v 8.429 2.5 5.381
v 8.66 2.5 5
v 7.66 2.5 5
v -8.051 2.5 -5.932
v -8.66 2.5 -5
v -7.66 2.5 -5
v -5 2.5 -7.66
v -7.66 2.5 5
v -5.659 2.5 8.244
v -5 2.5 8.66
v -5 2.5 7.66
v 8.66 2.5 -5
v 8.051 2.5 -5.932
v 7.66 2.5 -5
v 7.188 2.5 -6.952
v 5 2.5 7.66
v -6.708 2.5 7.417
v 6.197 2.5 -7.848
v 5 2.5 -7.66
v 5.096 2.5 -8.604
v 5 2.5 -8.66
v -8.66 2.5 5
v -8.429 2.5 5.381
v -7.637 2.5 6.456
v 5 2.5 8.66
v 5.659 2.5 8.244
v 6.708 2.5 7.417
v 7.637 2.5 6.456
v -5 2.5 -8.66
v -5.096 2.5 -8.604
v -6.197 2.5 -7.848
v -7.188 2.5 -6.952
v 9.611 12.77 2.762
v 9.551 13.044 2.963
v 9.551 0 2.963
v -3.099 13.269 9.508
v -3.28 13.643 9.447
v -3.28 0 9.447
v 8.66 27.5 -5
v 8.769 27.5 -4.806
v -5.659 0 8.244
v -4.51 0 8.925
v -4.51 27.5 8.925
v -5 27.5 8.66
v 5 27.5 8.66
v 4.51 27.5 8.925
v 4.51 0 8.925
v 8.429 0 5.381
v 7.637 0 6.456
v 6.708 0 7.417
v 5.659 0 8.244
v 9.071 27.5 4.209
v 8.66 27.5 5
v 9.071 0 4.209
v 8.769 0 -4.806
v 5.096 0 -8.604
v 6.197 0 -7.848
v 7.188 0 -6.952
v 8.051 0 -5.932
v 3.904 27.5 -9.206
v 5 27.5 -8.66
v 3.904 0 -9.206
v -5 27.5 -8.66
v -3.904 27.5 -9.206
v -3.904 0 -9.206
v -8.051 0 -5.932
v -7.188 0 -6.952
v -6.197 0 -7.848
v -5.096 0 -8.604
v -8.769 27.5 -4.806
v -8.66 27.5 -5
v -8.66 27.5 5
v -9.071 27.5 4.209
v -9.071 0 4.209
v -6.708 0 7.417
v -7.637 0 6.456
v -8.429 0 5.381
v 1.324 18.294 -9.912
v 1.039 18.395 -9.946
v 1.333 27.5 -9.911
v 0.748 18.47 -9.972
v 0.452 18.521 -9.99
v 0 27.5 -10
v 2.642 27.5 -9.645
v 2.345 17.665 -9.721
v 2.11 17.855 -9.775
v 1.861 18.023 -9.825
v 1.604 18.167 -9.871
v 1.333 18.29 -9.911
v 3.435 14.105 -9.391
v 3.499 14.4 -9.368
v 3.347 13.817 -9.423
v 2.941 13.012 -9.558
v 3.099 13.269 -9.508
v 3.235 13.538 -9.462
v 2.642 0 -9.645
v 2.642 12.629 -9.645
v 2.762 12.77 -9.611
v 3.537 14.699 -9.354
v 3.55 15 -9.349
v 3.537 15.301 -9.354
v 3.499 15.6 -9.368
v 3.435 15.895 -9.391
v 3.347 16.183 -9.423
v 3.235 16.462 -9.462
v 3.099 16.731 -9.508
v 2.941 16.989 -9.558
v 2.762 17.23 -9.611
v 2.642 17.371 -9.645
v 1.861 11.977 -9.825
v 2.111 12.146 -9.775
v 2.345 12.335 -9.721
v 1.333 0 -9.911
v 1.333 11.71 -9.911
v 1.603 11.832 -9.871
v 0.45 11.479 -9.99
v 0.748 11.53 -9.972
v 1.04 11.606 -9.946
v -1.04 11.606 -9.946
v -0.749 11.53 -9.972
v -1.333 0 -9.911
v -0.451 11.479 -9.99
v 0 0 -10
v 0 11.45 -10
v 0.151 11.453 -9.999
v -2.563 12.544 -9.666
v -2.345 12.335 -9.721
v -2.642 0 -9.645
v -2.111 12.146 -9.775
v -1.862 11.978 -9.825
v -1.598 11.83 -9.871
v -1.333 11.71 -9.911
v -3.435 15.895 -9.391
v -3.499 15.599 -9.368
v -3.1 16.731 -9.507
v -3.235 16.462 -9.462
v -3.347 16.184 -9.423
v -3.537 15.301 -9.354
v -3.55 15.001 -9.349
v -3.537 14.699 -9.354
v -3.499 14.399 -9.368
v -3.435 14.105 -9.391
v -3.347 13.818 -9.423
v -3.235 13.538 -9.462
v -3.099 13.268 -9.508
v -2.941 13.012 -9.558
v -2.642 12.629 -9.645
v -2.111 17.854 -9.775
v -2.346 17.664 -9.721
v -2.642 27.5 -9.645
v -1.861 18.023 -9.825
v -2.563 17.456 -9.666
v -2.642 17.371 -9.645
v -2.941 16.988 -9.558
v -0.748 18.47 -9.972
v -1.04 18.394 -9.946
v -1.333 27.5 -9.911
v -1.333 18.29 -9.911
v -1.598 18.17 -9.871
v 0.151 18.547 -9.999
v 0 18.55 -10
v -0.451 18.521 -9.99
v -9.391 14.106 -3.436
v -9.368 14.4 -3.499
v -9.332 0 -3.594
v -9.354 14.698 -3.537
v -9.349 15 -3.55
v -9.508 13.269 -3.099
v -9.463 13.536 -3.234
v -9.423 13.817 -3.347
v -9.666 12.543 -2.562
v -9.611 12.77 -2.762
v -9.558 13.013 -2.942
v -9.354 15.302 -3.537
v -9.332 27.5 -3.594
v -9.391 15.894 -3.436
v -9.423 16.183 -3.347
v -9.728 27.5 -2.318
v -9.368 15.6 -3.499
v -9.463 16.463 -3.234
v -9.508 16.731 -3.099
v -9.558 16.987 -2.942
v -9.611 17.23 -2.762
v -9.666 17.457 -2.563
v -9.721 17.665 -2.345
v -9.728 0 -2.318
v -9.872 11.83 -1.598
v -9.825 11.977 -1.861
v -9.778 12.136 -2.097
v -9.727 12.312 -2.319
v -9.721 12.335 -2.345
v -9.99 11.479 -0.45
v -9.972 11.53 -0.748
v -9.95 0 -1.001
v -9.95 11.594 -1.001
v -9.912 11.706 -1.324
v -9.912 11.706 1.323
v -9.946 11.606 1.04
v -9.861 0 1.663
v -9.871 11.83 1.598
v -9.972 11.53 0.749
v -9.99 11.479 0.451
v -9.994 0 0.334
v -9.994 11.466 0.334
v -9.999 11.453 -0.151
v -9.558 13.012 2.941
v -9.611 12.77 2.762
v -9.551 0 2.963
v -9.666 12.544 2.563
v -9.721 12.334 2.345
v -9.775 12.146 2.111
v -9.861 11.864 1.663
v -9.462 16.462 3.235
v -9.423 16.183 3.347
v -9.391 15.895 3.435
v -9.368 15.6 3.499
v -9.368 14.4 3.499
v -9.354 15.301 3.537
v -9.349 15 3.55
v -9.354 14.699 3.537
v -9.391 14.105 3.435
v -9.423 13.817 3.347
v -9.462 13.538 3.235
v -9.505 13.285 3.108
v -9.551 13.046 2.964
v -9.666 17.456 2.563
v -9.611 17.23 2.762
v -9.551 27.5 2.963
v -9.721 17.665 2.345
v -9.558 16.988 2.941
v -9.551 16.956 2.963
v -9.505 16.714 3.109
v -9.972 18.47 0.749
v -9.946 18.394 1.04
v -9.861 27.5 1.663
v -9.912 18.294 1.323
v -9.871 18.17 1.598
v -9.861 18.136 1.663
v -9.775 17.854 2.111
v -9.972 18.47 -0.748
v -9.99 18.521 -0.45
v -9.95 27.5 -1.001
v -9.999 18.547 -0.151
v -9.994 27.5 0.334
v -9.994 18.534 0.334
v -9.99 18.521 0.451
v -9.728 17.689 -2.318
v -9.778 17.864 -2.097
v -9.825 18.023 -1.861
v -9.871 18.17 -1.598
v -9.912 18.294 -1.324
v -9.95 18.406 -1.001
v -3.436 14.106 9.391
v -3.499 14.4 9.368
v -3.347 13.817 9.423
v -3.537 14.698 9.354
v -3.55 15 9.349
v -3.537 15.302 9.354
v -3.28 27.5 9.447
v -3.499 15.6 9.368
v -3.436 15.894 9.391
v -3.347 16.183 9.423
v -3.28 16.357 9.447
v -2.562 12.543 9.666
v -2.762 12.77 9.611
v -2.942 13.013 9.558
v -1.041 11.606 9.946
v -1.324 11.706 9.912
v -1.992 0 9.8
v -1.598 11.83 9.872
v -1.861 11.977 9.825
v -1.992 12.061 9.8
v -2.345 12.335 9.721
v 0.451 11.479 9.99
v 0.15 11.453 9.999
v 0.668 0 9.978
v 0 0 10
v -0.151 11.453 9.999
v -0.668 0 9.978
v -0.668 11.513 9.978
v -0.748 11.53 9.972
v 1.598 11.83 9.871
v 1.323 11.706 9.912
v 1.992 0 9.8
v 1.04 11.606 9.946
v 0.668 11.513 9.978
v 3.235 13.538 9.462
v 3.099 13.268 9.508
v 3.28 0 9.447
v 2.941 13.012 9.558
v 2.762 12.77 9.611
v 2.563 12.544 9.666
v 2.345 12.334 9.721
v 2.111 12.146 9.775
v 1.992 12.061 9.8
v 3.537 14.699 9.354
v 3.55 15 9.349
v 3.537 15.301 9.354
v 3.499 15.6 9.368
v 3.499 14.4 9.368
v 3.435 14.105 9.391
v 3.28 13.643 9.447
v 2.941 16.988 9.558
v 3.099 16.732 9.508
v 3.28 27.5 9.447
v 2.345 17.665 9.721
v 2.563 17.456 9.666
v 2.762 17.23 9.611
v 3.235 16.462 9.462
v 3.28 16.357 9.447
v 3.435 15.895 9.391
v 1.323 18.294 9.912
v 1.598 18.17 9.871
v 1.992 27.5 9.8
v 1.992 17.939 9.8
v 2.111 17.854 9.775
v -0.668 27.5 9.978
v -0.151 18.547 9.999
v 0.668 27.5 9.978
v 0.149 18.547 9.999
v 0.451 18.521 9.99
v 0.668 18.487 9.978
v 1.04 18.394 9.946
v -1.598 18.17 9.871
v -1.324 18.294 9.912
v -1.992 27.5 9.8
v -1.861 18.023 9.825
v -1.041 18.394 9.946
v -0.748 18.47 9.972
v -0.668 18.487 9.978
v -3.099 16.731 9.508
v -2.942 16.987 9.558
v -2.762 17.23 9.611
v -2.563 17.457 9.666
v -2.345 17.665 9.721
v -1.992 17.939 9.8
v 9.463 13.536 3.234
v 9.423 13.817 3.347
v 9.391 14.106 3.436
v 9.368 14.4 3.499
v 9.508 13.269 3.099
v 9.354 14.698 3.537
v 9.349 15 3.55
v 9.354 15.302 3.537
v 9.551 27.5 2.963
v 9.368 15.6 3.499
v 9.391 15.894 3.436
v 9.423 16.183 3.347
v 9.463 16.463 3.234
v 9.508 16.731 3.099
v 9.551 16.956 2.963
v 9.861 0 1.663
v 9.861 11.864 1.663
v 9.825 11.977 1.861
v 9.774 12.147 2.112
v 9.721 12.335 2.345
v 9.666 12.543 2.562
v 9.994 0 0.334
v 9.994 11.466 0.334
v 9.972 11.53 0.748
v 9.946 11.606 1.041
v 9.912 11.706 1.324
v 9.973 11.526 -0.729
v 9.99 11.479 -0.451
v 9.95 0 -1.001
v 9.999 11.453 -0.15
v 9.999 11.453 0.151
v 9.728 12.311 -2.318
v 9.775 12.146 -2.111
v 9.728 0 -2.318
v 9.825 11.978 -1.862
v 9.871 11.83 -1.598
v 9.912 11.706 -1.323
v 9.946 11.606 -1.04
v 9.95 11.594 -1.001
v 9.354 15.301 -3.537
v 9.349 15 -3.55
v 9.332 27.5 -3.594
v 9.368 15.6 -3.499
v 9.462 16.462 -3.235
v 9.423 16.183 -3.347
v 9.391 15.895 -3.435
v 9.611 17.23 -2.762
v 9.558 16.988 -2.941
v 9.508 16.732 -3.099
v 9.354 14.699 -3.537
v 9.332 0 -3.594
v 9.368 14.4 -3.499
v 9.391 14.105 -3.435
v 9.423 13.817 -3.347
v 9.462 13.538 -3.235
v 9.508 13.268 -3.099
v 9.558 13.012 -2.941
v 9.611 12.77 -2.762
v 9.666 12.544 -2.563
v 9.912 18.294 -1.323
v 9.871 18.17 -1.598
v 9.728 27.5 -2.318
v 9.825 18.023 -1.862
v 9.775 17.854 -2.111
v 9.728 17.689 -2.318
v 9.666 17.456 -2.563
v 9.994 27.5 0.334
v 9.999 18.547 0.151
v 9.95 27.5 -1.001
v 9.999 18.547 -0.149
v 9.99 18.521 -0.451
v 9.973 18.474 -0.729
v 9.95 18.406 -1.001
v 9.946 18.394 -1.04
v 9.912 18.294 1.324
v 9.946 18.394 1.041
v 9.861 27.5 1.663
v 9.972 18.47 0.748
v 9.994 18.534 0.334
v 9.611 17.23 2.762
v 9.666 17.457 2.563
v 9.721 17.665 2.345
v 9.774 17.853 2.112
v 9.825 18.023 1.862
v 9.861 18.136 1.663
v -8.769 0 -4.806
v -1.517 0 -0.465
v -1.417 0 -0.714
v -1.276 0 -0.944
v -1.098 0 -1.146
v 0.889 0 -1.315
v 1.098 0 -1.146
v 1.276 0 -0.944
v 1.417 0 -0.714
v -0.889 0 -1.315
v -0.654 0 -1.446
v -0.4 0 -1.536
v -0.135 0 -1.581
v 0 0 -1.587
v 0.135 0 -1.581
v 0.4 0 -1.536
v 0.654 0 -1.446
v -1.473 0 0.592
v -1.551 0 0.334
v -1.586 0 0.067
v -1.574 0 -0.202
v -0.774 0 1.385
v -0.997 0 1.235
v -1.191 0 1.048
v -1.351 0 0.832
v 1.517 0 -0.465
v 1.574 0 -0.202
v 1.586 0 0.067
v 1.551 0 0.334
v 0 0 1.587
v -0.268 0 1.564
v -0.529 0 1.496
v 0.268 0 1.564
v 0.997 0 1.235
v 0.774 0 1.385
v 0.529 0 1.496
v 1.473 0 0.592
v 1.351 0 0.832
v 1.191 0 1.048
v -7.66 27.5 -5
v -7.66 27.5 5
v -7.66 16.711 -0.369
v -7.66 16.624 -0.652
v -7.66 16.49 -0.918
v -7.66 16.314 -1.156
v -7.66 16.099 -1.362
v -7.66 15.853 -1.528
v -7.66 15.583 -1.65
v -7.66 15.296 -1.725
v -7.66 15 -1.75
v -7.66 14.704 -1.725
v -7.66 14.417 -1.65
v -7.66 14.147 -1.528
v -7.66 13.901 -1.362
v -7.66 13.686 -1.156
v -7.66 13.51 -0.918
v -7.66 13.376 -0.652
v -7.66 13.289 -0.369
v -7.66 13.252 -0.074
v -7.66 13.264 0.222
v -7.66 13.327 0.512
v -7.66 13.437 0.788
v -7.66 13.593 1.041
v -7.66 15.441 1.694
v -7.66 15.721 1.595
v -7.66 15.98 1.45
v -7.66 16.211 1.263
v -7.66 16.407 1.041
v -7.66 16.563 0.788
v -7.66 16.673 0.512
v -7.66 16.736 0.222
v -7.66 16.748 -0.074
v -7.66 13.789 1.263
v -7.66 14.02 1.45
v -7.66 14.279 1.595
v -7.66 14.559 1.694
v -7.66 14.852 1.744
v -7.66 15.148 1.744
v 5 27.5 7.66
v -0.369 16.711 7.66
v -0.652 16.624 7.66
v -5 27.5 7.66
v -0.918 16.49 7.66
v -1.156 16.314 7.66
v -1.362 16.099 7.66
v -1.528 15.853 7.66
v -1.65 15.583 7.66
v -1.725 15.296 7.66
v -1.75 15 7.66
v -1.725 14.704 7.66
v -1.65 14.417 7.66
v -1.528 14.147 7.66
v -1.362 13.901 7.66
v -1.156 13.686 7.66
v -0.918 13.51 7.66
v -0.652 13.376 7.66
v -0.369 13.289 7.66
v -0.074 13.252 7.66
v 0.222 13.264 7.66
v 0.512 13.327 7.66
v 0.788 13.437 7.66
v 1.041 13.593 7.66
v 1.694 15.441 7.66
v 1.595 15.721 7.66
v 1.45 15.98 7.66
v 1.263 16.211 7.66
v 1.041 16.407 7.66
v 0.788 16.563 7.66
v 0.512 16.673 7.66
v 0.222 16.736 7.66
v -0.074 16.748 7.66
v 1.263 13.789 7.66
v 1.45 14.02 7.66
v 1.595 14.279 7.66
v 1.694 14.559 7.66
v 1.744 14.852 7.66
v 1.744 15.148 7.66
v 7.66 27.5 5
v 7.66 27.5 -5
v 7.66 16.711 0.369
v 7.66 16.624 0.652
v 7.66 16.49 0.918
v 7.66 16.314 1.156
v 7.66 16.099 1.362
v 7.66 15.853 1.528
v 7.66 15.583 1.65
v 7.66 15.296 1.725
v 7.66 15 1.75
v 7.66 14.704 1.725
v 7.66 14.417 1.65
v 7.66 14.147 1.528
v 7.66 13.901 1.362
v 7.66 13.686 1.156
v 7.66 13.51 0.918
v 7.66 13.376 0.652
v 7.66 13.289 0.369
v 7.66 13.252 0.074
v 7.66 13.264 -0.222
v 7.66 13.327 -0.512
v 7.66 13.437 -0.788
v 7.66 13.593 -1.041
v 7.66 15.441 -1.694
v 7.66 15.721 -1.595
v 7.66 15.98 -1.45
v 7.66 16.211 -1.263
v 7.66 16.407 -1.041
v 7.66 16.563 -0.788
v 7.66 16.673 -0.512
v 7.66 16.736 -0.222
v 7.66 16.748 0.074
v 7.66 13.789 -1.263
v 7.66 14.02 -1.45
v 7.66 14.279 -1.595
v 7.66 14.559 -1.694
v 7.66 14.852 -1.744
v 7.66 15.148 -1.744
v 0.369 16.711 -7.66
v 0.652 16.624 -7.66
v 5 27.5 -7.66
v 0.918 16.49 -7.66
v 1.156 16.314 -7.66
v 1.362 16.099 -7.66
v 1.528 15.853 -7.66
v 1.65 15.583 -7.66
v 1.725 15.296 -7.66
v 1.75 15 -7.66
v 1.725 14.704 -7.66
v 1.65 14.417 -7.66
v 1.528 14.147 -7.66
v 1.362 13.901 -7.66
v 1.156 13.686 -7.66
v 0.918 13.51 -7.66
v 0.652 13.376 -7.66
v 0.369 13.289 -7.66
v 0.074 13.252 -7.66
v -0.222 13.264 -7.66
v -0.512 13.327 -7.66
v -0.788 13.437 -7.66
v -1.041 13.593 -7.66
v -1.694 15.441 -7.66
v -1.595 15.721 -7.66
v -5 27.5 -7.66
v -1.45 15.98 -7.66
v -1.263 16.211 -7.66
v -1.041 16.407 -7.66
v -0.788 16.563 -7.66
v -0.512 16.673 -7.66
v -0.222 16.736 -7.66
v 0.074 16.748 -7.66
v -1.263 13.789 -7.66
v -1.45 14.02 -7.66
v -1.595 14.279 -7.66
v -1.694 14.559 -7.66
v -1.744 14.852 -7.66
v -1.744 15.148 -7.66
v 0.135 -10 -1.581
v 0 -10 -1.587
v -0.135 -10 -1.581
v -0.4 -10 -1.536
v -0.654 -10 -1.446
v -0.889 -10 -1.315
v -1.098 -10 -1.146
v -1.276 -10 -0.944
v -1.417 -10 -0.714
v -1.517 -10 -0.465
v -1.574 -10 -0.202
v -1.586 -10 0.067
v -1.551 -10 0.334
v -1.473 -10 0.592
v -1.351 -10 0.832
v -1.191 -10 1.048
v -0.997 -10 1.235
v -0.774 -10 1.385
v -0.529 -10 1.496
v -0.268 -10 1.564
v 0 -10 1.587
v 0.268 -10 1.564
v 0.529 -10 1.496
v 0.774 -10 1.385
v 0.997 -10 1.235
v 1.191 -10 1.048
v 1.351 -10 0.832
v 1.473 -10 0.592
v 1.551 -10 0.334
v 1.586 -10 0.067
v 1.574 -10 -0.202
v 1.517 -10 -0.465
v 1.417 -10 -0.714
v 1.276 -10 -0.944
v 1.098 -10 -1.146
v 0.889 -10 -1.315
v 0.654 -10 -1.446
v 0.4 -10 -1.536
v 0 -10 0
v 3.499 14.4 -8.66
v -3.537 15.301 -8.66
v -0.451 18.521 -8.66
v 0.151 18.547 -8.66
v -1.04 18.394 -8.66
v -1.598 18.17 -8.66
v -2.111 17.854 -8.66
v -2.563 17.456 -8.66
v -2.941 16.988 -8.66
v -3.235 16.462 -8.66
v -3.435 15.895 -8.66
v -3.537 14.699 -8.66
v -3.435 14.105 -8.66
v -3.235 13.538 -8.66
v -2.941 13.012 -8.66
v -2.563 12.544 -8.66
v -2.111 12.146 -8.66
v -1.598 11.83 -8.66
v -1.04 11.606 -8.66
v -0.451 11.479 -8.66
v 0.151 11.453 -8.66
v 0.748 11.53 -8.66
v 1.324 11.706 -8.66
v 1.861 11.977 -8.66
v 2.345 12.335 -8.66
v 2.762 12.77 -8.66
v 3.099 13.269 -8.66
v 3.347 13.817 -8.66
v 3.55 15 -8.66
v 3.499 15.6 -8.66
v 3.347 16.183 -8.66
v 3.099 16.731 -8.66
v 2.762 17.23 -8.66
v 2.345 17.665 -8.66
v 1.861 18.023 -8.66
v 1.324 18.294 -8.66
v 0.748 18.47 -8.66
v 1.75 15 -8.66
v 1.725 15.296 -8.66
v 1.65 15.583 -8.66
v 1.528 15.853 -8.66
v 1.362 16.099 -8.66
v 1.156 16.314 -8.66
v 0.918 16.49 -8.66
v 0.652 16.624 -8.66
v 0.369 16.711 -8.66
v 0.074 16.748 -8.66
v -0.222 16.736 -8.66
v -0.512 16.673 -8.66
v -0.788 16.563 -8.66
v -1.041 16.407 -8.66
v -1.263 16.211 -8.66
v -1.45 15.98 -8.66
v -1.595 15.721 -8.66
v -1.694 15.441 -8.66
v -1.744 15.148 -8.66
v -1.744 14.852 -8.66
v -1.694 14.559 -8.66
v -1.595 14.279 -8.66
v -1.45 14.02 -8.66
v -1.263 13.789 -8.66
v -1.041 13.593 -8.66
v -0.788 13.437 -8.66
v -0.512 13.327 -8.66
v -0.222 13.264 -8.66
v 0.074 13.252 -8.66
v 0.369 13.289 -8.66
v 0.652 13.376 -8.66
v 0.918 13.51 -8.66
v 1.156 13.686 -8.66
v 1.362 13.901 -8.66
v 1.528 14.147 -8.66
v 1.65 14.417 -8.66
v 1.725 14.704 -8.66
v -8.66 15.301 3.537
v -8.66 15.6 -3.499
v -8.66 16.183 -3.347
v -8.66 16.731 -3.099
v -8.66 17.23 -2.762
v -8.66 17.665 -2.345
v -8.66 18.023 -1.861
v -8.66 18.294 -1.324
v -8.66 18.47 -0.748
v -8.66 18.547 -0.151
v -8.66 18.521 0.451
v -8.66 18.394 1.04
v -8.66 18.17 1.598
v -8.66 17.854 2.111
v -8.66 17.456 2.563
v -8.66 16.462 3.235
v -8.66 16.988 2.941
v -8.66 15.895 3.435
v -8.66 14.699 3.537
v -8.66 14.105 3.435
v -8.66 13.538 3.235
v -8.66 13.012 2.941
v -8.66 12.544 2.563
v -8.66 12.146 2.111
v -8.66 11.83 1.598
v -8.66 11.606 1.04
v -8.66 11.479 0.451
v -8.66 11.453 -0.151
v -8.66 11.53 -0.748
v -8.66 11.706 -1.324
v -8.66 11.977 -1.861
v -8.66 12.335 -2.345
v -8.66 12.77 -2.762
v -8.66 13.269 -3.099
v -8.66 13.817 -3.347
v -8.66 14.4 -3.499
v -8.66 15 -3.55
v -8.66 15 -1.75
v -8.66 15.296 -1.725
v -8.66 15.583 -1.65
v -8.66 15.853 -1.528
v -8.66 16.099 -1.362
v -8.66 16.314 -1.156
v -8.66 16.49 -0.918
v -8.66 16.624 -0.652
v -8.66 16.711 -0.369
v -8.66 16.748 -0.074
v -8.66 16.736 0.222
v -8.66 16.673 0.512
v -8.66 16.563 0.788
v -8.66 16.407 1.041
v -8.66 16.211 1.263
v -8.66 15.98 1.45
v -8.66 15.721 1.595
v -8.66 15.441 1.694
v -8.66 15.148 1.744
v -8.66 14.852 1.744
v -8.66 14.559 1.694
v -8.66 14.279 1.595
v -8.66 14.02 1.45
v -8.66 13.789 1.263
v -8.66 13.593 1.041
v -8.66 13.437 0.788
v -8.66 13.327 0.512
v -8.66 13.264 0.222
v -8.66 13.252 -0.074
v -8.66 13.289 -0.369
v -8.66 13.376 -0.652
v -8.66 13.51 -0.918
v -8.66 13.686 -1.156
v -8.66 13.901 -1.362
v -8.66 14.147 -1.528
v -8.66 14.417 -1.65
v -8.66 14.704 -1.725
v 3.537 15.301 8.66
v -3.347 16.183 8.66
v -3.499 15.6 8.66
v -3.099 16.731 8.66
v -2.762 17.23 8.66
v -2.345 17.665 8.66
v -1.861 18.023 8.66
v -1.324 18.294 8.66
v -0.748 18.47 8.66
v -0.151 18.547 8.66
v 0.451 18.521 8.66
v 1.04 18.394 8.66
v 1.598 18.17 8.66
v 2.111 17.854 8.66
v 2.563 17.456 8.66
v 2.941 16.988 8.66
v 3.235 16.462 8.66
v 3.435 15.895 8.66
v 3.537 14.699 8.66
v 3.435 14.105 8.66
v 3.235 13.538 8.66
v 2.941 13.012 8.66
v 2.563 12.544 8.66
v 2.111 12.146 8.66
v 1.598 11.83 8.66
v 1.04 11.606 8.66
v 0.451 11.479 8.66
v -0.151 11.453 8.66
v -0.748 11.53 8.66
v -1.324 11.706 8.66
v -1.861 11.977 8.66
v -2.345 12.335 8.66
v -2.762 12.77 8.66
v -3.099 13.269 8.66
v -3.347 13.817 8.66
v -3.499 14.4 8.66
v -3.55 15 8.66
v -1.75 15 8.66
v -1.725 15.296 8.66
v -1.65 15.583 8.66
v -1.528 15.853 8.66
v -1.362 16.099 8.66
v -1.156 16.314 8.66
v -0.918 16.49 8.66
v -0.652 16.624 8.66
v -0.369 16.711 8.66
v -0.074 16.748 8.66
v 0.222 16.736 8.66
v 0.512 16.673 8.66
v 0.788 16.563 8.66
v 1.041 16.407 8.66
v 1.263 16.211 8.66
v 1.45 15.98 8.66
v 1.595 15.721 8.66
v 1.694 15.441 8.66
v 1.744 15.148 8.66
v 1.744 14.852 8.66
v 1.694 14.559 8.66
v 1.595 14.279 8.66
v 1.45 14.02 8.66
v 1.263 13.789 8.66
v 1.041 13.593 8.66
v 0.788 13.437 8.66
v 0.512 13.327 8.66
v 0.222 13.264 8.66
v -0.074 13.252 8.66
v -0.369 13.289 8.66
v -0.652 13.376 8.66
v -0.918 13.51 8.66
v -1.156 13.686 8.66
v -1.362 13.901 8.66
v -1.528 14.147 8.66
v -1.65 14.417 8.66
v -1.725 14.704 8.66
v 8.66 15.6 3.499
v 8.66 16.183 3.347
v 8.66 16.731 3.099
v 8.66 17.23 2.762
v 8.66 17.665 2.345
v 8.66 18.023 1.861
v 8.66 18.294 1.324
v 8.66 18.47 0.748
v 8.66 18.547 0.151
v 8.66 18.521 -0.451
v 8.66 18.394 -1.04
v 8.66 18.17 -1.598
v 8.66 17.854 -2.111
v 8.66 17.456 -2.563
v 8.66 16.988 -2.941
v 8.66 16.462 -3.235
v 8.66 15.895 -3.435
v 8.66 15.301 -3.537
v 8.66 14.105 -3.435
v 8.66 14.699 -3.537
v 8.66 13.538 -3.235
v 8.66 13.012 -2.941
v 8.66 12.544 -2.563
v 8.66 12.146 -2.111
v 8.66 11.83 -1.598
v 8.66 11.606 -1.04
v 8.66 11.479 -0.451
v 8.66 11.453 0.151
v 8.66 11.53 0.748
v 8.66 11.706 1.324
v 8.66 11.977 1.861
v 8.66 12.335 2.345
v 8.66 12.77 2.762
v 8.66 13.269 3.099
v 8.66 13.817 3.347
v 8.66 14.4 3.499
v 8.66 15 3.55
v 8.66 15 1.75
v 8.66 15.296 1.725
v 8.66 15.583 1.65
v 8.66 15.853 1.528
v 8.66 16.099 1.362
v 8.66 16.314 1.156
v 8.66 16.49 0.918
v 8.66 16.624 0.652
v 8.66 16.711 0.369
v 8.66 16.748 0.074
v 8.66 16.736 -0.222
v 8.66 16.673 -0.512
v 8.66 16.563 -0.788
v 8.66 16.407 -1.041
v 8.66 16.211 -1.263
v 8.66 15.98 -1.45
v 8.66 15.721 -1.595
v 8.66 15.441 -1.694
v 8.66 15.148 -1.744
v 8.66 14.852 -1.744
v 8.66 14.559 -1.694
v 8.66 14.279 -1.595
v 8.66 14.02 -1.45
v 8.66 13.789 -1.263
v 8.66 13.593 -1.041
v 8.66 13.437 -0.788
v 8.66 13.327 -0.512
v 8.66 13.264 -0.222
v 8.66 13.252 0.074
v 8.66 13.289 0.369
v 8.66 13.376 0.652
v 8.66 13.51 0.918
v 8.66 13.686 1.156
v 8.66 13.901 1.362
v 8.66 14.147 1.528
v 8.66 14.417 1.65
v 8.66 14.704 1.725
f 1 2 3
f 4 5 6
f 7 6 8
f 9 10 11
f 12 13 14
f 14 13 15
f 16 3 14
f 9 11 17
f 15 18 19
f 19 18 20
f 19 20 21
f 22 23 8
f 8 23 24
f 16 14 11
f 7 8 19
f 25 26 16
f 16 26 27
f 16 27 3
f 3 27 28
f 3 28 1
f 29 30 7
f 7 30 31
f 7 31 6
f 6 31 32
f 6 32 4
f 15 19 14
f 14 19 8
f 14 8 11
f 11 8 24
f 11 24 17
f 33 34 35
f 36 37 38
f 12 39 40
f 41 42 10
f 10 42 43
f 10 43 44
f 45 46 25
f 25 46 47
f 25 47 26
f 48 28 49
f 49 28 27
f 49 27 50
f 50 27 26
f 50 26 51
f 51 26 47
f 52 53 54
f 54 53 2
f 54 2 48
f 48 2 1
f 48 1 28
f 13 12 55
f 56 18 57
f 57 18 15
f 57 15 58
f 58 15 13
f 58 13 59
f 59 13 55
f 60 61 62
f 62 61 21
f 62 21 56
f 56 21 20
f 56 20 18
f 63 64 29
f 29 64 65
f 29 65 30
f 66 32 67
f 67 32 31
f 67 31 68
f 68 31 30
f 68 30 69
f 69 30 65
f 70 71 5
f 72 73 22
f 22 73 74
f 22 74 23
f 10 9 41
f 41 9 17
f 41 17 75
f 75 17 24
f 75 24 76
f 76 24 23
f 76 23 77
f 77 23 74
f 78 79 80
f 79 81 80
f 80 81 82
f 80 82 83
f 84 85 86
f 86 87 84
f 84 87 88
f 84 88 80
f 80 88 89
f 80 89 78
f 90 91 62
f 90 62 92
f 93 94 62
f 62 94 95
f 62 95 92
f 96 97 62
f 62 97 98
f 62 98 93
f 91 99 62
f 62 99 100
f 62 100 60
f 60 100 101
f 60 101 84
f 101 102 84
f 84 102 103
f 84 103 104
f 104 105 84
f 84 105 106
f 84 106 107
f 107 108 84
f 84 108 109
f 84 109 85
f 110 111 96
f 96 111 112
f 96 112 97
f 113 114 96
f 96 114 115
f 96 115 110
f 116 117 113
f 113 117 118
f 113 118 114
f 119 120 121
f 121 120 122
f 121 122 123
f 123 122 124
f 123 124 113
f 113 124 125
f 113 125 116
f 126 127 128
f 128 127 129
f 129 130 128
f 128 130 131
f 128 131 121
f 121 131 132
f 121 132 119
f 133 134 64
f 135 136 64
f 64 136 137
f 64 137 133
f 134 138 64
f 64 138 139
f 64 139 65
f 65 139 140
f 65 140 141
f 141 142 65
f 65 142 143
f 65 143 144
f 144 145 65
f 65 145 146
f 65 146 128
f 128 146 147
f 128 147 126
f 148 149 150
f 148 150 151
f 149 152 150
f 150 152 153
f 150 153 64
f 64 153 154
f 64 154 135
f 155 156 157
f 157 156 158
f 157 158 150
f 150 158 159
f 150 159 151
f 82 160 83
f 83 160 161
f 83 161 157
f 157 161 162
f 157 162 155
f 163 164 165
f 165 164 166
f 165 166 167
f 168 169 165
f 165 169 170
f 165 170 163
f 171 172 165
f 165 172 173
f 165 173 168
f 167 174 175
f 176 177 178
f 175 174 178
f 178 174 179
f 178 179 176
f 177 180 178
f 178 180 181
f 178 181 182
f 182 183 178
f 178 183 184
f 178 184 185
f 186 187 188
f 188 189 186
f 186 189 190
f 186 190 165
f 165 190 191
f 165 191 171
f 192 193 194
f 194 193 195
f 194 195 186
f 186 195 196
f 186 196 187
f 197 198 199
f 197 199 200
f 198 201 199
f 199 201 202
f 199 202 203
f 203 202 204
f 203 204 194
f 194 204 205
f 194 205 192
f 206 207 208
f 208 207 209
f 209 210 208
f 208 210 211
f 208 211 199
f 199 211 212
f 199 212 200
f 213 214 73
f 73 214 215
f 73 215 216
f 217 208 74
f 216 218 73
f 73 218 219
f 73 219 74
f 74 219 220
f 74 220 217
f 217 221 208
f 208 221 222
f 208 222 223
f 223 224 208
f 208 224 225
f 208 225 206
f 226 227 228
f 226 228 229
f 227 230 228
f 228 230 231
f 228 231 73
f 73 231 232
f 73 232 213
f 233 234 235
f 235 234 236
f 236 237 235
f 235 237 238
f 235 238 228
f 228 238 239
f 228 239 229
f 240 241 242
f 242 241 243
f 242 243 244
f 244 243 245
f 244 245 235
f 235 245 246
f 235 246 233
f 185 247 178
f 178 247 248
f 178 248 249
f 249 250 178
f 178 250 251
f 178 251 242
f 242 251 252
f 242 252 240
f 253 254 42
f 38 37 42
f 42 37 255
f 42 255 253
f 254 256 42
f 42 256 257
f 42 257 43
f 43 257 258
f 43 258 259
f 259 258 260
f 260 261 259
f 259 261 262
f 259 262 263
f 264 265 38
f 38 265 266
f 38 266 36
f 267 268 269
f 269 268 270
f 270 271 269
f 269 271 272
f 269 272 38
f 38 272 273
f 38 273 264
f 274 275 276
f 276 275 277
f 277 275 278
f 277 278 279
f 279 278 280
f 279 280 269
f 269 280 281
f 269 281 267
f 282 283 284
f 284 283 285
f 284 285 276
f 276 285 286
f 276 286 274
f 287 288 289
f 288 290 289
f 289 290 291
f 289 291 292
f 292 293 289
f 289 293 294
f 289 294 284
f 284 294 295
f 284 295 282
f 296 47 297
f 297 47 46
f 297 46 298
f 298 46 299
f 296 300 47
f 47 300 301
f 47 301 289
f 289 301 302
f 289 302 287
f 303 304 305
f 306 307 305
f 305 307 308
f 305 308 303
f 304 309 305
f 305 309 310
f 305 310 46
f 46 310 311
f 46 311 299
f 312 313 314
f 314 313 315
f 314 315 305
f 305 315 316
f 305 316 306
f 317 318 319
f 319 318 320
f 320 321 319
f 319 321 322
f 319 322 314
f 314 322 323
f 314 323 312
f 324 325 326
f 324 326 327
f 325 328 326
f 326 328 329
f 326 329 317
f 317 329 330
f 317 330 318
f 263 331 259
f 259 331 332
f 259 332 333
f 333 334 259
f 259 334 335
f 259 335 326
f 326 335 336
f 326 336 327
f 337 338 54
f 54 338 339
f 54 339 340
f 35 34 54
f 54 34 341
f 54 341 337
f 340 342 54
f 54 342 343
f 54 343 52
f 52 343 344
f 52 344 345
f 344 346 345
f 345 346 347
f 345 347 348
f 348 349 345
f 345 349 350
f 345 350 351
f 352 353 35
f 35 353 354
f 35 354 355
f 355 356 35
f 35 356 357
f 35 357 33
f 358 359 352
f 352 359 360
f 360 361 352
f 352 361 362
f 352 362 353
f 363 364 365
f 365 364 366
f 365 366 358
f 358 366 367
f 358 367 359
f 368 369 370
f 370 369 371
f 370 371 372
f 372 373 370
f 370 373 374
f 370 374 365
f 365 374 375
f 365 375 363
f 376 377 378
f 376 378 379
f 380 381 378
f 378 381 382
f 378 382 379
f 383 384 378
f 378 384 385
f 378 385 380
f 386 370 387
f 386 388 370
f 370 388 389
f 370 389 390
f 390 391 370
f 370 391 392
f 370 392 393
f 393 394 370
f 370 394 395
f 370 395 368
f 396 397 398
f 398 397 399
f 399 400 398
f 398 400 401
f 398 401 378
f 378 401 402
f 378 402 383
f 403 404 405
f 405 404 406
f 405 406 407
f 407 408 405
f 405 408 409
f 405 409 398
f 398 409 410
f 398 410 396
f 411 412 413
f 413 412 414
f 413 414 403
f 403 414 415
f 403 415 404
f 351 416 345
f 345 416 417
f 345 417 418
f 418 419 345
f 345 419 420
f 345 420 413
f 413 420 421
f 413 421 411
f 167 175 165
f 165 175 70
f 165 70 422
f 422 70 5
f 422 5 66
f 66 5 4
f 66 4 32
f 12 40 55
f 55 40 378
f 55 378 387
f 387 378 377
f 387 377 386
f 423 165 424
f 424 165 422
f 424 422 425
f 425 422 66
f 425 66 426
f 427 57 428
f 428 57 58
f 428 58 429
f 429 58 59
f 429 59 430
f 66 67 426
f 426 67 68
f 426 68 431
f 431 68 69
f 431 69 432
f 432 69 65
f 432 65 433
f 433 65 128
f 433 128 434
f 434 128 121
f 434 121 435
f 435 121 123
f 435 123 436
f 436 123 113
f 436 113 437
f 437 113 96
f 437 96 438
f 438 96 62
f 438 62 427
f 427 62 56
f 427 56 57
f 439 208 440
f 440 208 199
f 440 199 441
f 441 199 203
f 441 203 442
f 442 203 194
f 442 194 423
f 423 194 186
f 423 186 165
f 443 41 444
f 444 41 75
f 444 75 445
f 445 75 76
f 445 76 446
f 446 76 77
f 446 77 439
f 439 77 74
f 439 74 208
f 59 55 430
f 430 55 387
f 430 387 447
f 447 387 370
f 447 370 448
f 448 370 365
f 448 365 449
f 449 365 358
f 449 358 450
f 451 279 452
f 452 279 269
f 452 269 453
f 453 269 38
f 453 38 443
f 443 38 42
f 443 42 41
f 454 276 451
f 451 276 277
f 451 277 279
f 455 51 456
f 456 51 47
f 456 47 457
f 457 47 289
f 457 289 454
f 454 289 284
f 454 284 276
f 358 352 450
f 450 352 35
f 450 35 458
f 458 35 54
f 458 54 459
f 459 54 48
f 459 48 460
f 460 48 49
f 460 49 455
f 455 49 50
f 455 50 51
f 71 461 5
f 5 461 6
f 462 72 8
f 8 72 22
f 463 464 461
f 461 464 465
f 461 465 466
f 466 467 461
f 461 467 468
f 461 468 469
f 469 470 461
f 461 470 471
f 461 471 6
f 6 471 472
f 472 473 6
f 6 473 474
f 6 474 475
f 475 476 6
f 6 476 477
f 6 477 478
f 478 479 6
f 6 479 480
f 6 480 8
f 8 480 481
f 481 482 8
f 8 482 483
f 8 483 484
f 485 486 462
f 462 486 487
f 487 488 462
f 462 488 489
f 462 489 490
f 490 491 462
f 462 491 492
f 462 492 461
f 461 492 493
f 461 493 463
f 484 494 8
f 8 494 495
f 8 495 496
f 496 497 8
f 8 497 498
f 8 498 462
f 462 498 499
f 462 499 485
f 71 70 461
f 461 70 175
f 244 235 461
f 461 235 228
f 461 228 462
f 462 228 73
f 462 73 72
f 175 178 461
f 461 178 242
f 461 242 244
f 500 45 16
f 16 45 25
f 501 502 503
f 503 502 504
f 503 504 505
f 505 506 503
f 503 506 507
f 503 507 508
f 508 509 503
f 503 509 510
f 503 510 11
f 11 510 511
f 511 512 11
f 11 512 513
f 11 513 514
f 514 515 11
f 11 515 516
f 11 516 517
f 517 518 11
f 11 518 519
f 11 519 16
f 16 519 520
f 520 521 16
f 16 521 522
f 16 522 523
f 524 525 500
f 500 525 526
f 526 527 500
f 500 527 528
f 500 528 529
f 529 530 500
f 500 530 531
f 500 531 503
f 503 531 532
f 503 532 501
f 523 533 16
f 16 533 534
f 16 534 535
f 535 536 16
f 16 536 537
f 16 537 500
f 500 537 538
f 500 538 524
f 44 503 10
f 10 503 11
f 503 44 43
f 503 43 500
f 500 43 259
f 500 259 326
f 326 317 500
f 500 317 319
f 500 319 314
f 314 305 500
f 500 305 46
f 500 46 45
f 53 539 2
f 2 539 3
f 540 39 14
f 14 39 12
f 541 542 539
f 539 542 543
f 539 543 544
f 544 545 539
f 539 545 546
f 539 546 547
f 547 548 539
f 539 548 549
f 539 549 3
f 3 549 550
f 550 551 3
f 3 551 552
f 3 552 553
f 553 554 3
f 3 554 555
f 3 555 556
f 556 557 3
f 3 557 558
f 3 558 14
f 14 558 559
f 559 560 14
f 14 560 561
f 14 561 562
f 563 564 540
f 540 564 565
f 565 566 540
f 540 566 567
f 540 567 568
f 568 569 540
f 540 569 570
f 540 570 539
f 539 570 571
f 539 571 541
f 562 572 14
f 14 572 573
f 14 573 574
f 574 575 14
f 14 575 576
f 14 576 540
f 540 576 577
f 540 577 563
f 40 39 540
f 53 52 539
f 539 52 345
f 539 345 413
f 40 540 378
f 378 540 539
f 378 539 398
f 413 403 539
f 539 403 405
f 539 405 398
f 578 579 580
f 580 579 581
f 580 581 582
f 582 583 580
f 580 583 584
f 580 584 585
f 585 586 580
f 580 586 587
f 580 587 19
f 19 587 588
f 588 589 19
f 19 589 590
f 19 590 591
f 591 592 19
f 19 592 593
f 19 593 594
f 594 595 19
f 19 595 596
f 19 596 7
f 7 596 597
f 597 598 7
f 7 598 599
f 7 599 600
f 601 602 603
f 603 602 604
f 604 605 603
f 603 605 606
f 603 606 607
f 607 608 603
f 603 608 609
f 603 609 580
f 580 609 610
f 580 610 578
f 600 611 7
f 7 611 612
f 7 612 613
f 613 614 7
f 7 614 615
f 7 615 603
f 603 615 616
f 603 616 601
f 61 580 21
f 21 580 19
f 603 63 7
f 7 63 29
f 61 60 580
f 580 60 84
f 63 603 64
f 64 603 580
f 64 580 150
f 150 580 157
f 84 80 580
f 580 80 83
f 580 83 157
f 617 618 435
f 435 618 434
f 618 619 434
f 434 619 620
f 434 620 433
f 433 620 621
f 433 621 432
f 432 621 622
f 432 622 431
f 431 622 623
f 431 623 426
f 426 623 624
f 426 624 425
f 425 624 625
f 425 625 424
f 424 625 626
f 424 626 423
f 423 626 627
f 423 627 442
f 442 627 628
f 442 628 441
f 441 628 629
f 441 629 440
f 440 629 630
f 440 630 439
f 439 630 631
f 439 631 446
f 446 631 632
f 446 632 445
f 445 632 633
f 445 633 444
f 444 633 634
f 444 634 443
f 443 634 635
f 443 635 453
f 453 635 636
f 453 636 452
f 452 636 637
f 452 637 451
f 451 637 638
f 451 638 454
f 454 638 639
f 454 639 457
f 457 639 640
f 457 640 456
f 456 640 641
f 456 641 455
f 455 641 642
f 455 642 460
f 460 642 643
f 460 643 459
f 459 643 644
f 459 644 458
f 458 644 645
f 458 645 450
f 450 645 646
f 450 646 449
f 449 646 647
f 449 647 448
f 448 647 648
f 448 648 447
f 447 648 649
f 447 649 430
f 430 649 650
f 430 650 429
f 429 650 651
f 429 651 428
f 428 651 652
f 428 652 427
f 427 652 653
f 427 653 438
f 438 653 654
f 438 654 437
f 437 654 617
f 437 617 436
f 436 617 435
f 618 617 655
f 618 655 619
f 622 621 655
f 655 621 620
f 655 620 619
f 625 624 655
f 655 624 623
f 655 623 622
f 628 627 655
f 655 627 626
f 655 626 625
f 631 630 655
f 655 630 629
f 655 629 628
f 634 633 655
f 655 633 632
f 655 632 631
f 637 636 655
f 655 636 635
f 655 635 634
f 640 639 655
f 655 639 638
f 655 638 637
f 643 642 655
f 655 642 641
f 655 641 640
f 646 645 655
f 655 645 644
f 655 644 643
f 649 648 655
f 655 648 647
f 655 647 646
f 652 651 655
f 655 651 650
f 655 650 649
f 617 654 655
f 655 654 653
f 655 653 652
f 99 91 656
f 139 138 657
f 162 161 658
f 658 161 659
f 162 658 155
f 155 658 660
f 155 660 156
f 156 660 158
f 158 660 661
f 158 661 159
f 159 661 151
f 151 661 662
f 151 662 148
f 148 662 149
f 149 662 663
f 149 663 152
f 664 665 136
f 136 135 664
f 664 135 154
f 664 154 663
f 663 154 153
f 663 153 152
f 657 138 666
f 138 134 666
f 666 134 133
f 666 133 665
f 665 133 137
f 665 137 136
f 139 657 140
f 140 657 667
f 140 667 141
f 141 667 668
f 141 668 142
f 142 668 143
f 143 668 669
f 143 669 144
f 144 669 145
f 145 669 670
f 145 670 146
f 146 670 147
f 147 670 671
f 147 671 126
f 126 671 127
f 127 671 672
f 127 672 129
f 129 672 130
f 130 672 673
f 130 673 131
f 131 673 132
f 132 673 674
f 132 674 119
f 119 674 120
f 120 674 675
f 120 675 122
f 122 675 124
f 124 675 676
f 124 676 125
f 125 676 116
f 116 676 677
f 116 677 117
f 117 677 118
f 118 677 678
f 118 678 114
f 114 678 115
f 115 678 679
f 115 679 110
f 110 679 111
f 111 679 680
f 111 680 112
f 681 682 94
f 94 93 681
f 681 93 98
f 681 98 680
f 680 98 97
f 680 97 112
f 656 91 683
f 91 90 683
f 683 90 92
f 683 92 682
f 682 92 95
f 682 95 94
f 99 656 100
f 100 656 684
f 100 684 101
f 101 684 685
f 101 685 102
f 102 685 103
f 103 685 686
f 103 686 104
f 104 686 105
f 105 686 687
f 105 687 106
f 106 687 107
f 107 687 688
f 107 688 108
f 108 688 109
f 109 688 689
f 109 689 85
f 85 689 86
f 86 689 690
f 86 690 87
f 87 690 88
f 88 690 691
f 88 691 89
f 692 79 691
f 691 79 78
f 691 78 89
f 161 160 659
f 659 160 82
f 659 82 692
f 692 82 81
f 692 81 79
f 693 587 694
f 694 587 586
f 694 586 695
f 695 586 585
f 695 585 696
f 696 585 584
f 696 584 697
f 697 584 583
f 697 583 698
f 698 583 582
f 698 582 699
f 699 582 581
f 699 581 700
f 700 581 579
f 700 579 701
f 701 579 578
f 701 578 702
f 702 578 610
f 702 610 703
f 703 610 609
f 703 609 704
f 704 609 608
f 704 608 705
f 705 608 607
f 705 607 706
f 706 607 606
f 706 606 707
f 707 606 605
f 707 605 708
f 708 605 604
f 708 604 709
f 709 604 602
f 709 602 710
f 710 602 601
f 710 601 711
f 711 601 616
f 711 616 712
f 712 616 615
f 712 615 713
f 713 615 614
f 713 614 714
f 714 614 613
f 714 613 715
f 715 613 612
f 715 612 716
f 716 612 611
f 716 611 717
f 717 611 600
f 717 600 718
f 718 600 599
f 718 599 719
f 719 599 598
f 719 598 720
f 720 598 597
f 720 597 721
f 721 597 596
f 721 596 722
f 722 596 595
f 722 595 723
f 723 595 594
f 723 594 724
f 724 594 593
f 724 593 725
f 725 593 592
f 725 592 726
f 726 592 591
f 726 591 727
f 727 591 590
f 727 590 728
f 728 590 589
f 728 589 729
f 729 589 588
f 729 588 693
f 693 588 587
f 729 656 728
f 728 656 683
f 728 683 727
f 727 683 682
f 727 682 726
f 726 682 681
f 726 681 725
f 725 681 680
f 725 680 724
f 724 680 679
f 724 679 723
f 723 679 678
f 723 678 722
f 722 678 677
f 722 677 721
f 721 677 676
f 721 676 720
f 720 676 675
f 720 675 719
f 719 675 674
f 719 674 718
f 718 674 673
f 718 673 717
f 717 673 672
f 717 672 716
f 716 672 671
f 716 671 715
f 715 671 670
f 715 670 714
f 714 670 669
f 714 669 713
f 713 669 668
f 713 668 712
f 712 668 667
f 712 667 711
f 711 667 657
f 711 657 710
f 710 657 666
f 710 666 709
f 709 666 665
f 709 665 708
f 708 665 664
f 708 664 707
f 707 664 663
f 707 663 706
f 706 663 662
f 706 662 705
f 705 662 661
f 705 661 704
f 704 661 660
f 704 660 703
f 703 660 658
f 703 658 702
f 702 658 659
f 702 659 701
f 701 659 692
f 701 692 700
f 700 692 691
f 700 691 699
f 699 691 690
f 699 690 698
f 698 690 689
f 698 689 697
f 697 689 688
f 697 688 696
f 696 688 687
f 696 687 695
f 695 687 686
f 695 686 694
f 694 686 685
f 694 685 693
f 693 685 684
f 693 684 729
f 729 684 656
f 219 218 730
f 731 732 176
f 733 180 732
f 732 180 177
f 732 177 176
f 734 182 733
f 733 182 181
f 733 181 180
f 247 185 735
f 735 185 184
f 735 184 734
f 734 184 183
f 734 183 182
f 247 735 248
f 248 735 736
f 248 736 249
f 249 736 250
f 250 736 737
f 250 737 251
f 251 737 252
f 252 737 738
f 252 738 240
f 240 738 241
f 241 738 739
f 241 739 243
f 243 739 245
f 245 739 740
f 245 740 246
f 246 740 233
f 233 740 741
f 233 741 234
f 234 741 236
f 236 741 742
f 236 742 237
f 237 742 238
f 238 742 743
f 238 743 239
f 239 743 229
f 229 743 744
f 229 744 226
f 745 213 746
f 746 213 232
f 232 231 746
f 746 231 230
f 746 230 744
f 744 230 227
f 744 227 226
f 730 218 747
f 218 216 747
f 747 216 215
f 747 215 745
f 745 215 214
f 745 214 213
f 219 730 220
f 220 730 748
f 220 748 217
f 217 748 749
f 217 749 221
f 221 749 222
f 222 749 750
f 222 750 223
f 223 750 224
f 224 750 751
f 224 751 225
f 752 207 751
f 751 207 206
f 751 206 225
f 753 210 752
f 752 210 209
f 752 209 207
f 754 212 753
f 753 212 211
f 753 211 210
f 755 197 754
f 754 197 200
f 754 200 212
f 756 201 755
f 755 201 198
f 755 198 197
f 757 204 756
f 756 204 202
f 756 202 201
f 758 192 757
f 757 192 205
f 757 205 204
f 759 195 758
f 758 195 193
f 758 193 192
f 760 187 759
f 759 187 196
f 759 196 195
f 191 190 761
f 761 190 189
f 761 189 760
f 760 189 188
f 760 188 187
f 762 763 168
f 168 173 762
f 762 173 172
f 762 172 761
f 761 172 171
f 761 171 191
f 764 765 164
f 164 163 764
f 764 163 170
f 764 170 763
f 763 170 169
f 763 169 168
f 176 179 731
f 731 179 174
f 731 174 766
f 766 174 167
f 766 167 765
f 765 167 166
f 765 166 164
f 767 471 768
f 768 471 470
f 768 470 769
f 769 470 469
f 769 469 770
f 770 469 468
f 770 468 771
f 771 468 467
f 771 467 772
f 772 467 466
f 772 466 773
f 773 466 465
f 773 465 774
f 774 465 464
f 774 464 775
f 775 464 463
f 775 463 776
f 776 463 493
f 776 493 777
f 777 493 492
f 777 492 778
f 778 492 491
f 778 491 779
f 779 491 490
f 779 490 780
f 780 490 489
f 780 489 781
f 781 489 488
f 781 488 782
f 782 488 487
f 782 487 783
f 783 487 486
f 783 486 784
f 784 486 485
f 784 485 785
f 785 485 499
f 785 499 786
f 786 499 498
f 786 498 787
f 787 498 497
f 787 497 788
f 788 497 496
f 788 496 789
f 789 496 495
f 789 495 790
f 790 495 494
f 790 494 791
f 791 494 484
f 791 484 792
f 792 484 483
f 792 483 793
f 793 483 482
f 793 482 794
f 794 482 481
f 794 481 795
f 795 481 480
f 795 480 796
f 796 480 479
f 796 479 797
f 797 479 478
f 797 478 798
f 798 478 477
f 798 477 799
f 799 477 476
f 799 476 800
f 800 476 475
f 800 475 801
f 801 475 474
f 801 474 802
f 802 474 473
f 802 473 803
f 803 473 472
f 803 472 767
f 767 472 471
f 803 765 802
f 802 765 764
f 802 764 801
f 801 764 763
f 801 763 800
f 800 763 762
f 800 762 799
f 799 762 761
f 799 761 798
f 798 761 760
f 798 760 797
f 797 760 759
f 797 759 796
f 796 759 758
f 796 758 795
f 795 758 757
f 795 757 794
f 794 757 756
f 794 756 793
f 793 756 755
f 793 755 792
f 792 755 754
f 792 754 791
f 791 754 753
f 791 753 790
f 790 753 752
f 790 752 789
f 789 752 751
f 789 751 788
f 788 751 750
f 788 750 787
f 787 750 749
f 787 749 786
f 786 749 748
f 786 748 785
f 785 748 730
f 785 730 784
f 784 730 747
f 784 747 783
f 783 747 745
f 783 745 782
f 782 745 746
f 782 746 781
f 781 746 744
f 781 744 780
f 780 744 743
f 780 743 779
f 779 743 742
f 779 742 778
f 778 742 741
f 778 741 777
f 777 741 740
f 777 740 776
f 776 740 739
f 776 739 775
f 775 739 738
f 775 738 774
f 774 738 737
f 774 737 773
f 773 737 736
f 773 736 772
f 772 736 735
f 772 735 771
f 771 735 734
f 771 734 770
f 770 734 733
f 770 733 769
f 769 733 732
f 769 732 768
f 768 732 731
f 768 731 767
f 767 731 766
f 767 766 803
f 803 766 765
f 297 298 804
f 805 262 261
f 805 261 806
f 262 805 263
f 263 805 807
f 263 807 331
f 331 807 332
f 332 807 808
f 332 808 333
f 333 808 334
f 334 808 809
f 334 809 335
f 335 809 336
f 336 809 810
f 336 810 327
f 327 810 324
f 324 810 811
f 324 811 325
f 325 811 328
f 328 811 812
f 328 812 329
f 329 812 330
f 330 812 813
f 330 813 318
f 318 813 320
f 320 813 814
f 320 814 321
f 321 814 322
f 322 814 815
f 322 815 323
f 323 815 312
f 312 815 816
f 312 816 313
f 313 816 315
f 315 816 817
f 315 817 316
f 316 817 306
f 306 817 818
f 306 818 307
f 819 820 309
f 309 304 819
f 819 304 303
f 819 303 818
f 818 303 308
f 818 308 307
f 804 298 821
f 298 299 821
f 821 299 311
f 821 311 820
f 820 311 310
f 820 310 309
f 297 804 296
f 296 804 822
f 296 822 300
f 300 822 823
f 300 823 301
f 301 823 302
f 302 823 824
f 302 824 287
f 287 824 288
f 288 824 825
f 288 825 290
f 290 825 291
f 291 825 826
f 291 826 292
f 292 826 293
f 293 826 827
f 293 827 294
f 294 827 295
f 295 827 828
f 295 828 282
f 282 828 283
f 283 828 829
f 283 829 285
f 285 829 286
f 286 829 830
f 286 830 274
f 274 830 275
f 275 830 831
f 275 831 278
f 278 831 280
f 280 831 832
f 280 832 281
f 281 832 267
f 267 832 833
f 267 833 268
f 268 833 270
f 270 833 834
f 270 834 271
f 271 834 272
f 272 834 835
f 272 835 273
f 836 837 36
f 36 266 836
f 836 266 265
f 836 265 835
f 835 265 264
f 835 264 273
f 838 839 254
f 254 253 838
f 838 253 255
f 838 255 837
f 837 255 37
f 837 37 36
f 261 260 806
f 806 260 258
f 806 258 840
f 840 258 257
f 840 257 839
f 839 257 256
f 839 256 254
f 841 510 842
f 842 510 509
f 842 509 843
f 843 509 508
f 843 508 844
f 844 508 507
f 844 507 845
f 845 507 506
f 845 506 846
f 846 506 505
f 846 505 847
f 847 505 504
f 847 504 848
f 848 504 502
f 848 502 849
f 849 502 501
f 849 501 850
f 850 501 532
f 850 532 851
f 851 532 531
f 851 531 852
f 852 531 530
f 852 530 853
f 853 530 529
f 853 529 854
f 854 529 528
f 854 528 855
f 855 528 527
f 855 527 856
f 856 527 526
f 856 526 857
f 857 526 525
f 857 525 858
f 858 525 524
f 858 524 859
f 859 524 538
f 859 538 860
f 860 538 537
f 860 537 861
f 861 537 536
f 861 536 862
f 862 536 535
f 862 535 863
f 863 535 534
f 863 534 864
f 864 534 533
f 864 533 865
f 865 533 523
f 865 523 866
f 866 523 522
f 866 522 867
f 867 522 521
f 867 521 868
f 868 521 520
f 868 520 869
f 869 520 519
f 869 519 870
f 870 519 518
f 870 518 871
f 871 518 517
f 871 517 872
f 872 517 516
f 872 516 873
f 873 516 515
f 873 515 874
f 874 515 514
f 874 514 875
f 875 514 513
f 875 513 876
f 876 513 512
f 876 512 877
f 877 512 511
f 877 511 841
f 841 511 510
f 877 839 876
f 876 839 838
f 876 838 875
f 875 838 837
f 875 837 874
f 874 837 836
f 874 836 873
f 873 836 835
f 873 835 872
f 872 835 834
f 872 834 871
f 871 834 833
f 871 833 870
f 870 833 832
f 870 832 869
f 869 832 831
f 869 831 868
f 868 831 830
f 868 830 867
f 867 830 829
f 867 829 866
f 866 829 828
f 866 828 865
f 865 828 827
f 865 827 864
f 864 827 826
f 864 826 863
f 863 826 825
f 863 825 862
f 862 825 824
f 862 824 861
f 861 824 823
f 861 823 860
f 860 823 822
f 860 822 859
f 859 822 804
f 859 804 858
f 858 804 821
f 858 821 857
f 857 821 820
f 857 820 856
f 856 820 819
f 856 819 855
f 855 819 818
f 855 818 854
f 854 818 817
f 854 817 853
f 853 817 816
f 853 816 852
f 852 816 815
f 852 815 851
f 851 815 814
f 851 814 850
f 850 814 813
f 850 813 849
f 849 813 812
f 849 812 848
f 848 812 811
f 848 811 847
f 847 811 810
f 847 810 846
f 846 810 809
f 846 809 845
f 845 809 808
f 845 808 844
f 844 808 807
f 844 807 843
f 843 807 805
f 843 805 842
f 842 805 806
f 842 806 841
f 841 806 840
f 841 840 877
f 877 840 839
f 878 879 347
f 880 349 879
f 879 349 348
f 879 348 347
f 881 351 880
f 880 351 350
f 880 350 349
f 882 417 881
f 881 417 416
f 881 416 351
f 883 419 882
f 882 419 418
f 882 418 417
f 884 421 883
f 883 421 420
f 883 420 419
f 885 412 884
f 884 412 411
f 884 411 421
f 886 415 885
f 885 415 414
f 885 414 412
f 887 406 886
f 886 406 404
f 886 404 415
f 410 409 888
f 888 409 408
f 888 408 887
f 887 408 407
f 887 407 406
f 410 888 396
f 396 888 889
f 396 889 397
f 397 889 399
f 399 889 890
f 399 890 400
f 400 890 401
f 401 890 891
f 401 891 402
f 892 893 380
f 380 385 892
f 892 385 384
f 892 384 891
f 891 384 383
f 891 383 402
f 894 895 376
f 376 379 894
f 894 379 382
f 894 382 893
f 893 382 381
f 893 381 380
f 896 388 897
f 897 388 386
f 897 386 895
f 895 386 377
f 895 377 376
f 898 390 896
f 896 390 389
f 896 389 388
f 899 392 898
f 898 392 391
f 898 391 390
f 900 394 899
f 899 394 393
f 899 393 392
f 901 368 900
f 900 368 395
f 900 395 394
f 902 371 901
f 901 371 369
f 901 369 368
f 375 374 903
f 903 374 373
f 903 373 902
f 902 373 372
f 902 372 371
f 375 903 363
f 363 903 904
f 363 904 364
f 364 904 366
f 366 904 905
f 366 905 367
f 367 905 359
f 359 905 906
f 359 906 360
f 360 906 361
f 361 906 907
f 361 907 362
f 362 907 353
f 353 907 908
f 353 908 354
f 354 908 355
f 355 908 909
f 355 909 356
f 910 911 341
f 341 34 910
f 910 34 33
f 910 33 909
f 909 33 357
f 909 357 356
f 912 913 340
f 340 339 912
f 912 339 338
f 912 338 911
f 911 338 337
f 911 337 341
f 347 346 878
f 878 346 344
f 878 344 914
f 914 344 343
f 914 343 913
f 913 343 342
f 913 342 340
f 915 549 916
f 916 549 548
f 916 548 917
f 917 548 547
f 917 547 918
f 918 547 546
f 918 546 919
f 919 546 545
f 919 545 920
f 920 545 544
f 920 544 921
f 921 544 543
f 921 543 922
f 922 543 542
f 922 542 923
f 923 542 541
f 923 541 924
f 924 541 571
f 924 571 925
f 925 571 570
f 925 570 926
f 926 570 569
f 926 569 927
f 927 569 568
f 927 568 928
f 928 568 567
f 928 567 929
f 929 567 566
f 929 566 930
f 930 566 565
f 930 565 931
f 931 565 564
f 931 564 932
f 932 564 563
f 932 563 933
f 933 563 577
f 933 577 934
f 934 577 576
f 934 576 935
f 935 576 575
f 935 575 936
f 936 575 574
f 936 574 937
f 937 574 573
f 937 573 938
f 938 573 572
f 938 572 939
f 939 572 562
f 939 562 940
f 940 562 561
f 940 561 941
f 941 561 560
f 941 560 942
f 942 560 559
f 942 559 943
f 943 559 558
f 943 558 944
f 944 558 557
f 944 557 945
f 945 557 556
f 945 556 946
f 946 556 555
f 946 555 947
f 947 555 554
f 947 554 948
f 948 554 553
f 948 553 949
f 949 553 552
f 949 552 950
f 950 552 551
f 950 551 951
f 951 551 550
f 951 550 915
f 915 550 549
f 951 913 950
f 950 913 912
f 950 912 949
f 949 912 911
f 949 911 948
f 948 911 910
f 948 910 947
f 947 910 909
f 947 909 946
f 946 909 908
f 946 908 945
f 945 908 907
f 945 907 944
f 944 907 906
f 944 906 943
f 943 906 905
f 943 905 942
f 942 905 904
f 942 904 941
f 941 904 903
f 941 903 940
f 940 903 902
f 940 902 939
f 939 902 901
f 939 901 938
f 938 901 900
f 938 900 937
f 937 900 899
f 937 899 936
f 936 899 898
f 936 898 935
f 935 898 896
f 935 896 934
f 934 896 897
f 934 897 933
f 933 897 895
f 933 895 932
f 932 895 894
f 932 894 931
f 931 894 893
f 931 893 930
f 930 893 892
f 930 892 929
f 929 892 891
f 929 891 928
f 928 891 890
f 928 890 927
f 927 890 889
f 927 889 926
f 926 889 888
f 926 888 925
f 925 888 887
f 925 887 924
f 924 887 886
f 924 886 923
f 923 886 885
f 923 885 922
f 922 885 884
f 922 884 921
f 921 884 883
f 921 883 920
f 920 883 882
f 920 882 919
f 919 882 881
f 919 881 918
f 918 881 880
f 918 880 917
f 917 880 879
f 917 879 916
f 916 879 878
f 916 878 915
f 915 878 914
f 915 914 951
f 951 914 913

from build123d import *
from build123d.topology import SkipClean

# Parameters (mm, degrees)
SKETCH1_R           = 10
BOSS_EXTRUDE1_DEPTH = 2.5
BOSS_EXTRUDE2_DEPTH = 25
SKETCH5_R           = 1.587
BOSS_EXTRUDE3_DEPTH = 10
CIRPATTERN2_COUNT   = 4


with BuildPart() as part:
    # Sketch1 → Boss-Extrude1 (new body)
    with BuildSketch(Plane(origin=(0, 0, 0), x_dir=(1, 0, 0), z_dir=(0, 1, 0))):
        with Locations(Location((0, 0, 0), (0, 0, 270))):
            Circle(SKETCH1_R)
    extrude(amount=BOSS_EXTRUDE1_DEPTH)

    # Sketch3 → Boss-Extrude2 (add)
    with BuildSketch(Plane(origin=(0, 2.5, 0), x_dir=(1, 0, 0), z_dir=(0, 1, 0))):
        with BuildLine():
            Line((-7.660254038, 5), (-8.660254038, 5))
            ThreePointArc((-8.660254038, 5), (-10, 0), (-8.660254038, -5))
            Line((-8.660254038, -5), (-7.660254038, -5))
            Line((-7.660254038, -5), (-7.660254038, 5))
        make_face()
        with BuildLine():
            Line((-5, -7.660254038), (-5, -8.660254038))
            ThreePointArc((-5, -8.660254038), (0, -10), (5, -8.660254038))
            Line((5, -8.660254038), (5, -7.660254038))
            Line((5, -7.660254038), (-5, -7.660254038))
        make_face()
        with BuildLine():
            ThreePointArc((10, 0), (9.659258263, 2.588190451), (8.660254038, 5))
            Line((8.660254038, 5), (7.660254038, 5))
            Line((7.660254038, 5), (7.660254038, -5))
            Line((7.660254038, -5), (8.660254038, -5))
            ThreePointArc((8.660254038, -5), (9.659258263, -2.588190451), (10, 0))
        make_face()
        with BuildLine():
            ThreePointArc((5, 8.660254038), (0, 10), (-5, 8.660254038))
            Line((-5, 8.660254038), (-5, 7.660254038))
            Line((-5, 7.660254038), (5, 7.660254038))
            Line((5, 7.660254038), (5, 8.660254038))
        make_face()
    extrude(amount=BOSS_EXTRUDE2_DEPTH)

    # Sketch5 → Boss-Extrude3 (add)
    with BuildSketch(Plane(origin=(0, 0, 0), x_dir=(-1, 0, 0), z_dir=(0, -1, 0))):
        with Locations(Location((0, 0, 0), (0, 0, 90))):
            Circle(SKETCH5_R)
    extrude(amount=BOSS_EXTRUDE3_DEPTH)

    # Sketch7 → Cut-Revolve1 (revolve, cut)
    with BuildSketch(Plane(origin=(0, 15, 0), x_dir=(1, 0, 0), z_dir=(0, 1, 0))):
        Polygon((0, 7.660254038), (1.75, 7.660254038), (1.75, 8.660254038), (3.55, 8.660254038), (3.55, 10.3184344), (0, 10.3184344), align=None)
    cut_revolve1 = revolve(axis=Axis((0, 15, 0), (0, 0, -1)), mode=Mode.SUBTRACT)

    # CirPattern2: Cut-Revolve1 ×4 about axis
    with SkipClean():  # the faces are left unmerged after this step: merging them gives an invalid solid
        cirpattern2_axis = Axis((0, 0, 0), (0, 1, 0))
        for i in range(1, CIRPATTERN2_COUNT):
            add(cut_revolve1.rotate(cirpattern2_axis, i * 360 / CIRPATTERN2_COUNT), mode=Mode.SUBTRACT)


solid = part.part
